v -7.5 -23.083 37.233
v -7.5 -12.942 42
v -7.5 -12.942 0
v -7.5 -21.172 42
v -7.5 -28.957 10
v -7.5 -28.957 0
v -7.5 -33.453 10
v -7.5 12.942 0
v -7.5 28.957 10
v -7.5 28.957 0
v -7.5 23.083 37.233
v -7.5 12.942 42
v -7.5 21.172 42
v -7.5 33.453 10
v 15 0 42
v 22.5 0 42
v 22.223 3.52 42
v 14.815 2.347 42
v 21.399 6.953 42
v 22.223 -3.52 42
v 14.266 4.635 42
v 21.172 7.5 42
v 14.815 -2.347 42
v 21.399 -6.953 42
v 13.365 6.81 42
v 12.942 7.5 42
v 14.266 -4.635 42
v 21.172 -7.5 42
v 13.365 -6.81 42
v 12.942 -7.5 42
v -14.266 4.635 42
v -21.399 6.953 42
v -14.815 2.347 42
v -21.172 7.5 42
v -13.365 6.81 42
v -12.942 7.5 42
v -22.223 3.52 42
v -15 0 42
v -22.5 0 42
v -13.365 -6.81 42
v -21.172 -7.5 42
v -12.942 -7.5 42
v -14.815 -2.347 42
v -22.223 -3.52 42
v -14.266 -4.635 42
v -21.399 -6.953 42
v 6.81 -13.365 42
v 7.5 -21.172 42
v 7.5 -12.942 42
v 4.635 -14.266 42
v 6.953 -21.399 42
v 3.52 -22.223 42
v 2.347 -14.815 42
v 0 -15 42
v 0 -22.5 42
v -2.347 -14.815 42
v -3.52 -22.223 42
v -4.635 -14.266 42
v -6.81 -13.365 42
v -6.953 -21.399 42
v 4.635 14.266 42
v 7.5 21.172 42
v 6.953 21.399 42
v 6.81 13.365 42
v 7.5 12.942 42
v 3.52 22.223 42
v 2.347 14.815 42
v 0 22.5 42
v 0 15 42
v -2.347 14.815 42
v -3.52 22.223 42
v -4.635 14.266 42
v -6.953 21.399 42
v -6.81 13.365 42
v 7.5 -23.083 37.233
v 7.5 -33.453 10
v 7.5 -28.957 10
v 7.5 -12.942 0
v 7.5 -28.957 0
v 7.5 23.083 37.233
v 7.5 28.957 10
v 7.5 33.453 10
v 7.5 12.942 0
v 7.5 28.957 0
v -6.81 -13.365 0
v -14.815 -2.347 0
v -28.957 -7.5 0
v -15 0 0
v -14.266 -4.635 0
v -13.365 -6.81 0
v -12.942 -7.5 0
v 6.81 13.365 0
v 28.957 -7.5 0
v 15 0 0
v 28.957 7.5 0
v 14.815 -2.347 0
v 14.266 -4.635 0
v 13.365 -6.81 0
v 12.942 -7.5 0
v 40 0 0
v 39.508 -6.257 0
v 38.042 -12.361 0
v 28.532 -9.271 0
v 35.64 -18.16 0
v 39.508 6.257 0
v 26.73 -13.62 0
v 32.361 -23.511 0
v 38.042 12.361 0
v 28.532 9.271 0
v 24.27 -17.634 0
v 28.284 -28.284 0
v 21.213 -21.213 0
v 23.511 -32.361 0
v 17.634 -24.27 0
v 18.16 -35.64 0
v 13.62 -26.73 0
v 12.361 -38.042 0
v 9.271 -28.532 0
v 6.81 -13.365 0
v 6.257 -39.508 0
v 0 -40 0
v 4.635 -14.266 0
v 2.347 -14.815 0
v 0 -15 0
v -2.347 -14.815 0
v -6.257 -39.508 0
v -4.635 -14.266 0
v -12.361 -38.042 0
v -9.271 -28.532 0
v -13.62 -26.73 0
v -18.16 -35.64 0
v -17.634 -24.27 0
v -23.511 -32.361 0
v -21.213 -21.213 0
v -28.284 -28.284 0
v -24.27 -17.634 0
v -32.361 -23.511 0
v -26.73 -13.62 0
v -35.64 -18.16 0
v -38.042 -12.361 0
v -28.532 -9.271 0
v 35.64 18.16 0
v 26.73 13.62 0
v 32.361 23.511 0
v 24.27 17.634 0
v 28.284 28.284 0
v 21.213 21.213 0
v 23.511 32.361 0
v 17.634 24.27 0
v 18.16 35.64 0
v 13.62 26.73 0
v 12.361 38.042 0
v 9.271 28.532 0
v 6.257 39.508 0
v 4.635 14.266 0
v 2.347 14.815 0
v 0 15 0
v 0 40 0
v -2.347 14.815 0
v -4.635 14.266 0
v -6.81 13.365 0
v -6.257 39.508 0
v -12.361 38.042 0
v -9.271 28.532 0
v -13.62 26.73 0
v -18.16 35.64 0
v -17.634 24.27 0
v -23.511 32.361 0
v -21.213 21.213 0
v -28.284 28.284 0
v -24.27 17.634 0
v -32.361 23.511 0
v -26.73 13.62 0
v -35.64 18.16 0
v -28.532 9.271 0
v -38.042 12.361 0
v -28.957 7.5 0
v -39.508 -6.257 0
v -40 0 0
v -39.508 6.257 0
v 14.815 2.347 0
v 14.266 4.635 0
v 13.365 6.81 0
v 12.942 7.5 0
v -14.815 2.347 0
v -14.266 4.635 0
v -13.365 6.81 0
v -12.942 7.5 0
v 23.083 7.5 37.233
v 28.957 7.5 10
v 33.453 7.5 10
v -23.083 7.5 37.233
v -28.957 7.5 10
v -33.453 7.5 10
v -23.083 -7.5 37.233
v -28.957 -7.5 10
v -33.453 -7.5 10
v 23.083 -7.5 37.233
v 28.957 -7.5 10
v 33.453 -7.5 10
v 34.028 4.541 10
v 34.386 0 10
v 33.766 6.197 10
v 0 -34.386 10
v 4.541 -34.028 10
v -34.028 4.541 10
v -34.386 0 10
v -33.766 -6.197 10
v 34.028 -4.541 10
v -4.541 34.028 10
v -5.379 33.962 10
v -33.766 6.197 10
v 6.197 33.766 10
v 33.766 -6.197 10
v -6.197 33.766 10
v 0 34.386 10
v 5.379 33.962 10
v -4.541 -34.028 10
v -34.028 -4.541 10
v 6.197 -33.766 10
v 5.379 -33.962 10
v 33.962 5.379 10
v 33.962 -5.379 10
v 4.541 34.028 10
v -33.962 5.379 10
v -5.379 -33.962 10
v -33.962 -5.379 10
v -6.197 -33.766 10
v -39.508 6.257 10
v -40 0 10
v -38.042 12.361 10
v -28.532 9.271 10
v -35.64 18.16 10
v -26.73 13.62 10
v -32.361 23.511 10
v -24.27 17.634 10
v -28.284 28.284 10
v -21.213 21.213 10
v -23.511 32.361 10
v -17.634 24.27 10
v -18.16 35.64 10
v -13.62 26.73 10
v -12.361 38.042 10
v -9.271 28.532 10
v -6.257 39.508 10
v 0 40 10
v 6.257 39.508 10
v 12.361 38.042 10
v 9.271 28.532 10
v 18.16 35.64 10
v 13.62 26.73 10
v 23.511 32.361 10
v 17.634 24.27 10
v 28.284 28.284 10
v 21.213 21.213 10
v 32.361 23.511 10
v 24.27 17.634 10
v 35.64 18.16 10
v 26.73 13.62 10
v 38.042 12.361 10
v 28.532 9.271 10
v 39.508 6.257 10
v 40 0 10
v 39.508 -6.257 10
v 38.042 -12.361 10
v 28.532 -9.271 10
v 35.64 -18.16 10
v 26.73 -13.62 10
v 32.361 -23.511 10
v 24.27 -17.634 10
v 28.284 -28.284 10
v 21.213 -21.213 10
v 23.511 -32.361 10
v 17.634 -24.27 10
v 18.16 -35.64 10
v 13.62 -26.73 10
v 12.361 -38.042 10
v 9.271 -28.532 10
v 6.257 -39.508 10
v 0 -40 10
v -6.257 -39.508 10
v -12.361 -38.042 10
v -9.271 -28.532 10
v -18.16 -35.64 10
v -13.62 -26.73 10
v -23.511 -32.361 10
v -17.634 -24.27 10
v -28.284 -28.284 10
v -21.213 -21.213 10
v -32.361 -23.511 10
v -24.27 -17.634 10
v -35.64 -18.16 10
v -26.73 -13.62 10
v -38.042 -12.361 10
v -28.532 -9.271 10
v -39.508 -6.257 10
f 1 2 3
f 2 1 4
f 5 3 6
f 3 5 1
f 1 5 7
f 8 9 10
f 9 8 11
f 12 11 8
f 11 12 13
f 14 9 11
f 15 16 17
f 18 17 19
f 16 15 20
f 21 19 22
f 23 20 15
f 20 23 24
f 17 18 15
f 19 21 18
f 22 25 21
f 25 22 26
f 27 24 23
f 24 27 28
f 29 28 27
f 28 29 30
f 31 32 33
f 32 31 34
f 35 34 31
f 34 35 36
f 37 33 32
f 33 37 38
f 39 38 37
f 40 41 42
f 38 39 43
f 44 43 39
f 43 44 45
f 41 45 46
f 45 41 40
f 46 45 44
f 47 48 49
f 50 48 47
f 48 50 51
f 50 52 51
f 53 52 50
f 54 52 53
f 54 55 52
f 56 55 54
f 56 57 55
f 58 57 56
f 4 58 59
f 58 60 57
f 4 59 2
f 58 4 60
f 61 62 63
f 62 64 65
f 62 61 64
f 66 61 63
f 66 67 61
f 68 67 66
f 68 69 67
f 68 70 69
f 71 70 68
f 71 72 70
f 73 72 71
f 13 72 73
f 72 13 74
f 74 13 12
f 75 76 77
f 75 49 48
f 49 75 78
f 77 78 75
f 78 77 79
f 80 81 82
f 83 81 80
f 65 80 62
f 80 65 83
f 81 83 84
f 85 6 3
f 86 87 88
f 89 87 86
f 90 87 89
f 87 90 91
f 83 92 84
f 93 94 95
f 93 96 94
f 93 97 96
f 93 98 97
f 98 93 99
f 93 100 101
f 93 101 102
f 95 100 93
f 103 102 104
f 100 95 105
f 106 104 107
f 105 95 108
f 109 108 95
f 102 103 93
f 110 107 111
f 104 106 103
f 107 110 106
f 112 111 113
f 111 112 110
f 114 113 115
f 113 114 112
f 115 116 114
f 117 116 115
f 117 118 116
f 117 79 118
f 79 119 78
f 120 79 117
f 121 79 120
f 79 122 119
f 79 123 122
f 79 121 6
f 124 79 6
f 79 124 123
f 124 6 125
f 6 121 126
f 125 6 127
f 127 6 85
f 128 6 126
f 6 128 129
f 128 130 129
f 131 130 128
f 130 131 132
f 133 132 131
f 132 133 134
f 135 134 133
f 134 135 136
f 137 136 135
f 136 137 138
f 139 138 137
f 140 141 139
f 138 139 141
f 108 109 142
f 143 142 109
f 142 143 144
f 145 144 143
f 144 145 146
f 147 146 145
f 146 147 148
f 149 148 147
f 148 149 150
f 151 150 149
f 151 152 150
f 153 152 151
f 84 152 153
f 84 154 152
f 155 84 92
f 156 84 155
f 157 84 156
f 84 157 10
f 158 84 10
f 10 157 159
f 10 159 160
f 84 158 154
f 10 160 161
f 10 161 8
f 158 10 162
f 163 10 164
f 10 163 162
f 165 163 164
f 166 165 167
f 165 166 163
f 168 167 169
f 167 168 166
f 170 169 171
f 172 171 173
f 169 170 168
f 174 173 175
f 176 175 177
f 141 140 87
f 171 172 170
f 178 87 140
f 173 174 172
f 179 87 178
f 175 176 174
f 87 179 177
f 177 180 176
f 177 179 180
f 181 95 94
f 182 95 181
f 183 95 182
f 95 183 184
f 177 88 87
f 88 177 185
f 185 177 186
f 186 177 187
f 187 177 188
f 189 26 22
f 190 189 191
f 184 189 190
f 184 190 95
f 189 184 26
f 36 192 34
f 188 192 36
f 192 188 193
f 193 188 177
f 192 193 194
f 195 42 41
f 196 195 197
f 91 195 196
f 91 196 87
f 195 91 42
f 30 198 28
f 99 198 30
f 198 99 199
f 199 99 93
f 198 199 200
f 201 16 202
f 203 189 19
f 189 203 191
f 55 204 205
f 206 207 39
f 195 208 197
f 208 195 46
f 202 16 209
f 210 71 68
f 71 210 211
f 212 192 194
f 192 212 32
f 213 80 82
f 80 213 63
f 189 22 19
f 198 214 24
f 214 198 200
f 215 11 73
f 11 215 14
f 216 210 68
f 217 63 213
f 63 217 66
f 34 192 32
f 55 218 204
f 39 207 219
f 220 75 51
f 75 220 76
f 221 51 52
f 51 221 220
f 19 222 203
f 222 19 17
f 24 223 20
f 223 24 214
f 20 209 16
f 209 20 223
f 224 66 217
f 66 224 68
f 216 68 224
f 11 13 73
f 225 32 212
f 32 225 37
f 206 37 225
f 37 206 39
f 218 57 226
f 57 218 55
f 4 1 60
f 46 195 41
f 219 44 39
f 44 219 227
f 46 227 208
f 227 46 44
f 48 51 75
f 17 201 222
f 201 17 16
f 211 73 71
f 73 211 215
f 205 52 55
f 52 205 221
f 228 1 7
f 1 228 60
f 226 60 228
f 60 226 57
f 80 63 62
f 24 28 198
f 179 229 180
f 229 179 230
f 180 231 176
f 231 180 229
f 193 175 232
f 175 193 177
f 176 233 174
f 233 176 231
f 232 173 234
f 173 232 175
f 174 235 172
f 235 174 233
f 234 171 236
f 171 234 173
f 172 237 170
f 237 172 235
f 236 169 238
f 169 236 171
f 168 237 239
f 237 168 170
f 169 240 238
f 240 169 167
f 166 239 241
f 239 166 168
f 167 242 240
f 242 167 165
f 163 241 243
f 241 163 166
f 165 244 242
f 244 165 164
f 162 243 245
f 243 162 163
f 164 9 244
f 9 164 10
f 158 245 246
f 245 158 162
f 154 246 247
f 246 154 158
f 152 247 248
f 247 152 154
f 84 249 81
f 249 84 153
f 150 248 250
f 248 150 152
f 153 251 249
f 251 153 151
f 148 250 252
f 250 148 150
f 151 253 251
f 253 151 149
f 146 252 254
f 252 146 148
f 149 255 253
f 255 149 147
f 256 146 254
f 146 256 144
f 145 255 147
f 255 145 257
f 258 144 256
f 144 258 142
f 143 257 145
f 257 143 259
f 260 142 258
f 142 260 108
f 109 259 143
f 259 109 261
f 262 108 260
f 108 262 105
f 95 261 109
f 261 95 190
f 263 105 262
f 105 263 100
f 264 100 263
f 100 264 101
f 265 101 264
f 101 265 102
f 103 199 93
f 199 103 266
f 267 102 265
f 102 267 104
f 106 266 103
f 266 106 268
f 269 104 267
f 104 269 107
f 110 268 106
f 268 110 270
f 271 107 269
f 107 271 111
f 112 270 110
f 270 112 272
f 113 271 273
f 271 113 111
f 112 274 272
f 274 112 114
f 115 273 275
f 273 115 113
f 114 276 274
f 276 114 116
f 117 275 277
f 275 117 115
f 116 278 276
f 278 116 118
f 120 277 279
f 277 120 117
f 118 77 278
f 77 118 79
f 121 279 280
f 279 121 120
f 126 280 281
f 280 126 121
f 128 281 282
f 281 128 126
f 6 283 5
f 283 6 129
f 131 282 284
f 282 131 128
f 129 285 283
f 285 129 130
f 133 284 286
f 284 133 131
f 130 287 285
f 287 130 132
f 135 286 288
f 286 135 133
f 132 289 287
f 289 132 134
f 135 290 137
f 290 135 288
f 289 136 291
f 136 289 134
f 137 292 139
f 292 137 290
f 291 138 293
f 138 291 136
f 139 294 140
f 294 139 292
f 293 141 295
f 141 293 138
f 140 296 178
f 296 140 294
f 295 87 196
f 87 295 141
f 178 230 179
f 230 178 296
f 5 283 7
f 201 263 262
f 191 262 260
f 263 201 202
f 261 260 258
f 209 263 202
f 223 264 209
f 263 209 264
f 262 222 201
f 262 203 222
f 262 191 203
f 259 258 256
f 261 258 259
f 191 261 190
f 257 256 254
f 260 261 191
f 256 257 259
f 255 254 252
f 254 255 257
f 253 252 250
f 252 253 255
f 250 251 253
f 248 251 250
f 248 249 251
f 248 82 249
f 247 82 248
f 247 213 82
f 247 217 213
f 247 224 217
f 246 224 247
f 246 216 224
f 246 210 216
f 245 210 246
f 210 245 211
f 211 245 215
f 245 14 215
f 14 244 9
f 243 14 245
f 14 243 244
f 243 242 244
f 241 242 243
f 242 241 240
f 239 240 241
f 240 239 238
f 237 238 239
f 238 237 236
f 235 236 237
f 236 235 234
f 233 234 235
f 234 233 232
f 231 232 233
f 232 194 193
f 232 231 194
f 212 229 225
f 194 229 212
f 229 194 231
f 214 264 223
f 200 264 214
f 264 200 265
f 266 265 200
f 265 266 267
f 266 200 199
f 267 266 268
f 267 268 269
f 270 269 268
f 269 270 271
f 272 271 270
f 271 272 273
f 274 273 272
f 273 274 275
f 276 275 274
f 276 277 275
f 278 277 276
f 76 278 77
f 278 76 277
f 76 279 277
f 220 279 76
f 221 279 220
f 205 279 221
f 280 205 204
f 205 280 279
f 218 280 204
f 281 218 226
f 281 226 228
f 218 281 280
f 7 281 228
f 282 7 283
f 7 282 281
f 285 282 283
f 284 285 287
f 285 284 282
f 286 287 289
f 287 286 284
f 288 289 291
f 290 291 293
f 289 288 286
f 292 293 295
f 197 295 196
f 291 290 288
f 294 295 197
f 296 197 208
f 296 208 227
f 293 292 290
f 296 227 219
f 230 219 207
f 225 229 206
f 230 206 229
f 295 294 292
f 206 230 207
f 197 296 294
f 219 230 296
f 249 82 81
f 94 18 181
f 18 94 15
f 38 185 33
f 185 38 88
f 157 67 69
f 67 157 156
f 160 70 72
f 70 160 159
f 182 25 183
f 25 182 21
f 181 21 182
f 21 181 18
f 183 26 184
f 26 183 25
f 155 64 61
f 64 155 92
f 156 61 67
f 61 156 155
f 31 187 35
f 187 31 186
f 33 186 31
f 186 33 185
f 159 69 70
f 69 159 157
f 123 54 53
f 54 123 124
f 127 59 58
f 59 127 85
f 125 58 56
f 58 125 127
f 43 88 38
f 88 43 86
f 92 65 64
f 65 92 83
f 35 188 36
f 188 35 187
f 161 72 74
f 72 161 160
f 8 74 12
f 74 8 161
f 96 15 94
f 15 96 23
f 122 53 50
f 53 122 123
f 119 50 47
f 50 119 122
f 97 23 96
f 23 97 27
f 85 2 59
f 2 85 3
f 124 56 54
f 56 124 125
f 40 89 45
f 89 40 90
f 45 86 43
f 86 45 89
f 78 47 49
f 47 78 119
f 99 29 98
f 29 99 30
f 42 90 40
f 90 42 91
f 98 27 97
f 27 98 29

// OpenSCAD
// Drying stand for 1-gallon glass jugs

/*changes:
intersect
    OD cone (support neck up to where it starts to flare)
    tall cubes (make cone into butresses)
    rotate extrude square (ring base to stabilize butresses)

add air passages to center post for forced-air drying?
id=28.3
od=34.55
shoulder=42
rim thickness=6.25
*/

$fn=40;
in_conv=25.4;

// measure these and make sure
inside_d=25.4;
outside_d=38;
difference(){
    union(){
        intersection(){
            cylinder(42,d1=76.2,d2=45);
            translate([0,0,21]){
                cube([15,76.2,42],center=true);
                cube([76.2,15,42],center=true);
            }
        }
        rotate_extrude(angle=360) translate([30,0,0]) square(10);
    }
    cylinder(45,d=30);
}

*difference(){
    union(){
        cylinder(60,d=inside_d-10);
        translate([0,0,5]){
            cube([in_conv*6,15,15],center=true);
            cube([15,in_conv*6,15],center=true);
        }
    }
    translate([0,0,5]){ //air channel
        cylinder(in_conv*6,d=8);
        rotate([0,90,0]) cylinder(in_conv*6,d=8);
        sphere(d=8);
    }
}
